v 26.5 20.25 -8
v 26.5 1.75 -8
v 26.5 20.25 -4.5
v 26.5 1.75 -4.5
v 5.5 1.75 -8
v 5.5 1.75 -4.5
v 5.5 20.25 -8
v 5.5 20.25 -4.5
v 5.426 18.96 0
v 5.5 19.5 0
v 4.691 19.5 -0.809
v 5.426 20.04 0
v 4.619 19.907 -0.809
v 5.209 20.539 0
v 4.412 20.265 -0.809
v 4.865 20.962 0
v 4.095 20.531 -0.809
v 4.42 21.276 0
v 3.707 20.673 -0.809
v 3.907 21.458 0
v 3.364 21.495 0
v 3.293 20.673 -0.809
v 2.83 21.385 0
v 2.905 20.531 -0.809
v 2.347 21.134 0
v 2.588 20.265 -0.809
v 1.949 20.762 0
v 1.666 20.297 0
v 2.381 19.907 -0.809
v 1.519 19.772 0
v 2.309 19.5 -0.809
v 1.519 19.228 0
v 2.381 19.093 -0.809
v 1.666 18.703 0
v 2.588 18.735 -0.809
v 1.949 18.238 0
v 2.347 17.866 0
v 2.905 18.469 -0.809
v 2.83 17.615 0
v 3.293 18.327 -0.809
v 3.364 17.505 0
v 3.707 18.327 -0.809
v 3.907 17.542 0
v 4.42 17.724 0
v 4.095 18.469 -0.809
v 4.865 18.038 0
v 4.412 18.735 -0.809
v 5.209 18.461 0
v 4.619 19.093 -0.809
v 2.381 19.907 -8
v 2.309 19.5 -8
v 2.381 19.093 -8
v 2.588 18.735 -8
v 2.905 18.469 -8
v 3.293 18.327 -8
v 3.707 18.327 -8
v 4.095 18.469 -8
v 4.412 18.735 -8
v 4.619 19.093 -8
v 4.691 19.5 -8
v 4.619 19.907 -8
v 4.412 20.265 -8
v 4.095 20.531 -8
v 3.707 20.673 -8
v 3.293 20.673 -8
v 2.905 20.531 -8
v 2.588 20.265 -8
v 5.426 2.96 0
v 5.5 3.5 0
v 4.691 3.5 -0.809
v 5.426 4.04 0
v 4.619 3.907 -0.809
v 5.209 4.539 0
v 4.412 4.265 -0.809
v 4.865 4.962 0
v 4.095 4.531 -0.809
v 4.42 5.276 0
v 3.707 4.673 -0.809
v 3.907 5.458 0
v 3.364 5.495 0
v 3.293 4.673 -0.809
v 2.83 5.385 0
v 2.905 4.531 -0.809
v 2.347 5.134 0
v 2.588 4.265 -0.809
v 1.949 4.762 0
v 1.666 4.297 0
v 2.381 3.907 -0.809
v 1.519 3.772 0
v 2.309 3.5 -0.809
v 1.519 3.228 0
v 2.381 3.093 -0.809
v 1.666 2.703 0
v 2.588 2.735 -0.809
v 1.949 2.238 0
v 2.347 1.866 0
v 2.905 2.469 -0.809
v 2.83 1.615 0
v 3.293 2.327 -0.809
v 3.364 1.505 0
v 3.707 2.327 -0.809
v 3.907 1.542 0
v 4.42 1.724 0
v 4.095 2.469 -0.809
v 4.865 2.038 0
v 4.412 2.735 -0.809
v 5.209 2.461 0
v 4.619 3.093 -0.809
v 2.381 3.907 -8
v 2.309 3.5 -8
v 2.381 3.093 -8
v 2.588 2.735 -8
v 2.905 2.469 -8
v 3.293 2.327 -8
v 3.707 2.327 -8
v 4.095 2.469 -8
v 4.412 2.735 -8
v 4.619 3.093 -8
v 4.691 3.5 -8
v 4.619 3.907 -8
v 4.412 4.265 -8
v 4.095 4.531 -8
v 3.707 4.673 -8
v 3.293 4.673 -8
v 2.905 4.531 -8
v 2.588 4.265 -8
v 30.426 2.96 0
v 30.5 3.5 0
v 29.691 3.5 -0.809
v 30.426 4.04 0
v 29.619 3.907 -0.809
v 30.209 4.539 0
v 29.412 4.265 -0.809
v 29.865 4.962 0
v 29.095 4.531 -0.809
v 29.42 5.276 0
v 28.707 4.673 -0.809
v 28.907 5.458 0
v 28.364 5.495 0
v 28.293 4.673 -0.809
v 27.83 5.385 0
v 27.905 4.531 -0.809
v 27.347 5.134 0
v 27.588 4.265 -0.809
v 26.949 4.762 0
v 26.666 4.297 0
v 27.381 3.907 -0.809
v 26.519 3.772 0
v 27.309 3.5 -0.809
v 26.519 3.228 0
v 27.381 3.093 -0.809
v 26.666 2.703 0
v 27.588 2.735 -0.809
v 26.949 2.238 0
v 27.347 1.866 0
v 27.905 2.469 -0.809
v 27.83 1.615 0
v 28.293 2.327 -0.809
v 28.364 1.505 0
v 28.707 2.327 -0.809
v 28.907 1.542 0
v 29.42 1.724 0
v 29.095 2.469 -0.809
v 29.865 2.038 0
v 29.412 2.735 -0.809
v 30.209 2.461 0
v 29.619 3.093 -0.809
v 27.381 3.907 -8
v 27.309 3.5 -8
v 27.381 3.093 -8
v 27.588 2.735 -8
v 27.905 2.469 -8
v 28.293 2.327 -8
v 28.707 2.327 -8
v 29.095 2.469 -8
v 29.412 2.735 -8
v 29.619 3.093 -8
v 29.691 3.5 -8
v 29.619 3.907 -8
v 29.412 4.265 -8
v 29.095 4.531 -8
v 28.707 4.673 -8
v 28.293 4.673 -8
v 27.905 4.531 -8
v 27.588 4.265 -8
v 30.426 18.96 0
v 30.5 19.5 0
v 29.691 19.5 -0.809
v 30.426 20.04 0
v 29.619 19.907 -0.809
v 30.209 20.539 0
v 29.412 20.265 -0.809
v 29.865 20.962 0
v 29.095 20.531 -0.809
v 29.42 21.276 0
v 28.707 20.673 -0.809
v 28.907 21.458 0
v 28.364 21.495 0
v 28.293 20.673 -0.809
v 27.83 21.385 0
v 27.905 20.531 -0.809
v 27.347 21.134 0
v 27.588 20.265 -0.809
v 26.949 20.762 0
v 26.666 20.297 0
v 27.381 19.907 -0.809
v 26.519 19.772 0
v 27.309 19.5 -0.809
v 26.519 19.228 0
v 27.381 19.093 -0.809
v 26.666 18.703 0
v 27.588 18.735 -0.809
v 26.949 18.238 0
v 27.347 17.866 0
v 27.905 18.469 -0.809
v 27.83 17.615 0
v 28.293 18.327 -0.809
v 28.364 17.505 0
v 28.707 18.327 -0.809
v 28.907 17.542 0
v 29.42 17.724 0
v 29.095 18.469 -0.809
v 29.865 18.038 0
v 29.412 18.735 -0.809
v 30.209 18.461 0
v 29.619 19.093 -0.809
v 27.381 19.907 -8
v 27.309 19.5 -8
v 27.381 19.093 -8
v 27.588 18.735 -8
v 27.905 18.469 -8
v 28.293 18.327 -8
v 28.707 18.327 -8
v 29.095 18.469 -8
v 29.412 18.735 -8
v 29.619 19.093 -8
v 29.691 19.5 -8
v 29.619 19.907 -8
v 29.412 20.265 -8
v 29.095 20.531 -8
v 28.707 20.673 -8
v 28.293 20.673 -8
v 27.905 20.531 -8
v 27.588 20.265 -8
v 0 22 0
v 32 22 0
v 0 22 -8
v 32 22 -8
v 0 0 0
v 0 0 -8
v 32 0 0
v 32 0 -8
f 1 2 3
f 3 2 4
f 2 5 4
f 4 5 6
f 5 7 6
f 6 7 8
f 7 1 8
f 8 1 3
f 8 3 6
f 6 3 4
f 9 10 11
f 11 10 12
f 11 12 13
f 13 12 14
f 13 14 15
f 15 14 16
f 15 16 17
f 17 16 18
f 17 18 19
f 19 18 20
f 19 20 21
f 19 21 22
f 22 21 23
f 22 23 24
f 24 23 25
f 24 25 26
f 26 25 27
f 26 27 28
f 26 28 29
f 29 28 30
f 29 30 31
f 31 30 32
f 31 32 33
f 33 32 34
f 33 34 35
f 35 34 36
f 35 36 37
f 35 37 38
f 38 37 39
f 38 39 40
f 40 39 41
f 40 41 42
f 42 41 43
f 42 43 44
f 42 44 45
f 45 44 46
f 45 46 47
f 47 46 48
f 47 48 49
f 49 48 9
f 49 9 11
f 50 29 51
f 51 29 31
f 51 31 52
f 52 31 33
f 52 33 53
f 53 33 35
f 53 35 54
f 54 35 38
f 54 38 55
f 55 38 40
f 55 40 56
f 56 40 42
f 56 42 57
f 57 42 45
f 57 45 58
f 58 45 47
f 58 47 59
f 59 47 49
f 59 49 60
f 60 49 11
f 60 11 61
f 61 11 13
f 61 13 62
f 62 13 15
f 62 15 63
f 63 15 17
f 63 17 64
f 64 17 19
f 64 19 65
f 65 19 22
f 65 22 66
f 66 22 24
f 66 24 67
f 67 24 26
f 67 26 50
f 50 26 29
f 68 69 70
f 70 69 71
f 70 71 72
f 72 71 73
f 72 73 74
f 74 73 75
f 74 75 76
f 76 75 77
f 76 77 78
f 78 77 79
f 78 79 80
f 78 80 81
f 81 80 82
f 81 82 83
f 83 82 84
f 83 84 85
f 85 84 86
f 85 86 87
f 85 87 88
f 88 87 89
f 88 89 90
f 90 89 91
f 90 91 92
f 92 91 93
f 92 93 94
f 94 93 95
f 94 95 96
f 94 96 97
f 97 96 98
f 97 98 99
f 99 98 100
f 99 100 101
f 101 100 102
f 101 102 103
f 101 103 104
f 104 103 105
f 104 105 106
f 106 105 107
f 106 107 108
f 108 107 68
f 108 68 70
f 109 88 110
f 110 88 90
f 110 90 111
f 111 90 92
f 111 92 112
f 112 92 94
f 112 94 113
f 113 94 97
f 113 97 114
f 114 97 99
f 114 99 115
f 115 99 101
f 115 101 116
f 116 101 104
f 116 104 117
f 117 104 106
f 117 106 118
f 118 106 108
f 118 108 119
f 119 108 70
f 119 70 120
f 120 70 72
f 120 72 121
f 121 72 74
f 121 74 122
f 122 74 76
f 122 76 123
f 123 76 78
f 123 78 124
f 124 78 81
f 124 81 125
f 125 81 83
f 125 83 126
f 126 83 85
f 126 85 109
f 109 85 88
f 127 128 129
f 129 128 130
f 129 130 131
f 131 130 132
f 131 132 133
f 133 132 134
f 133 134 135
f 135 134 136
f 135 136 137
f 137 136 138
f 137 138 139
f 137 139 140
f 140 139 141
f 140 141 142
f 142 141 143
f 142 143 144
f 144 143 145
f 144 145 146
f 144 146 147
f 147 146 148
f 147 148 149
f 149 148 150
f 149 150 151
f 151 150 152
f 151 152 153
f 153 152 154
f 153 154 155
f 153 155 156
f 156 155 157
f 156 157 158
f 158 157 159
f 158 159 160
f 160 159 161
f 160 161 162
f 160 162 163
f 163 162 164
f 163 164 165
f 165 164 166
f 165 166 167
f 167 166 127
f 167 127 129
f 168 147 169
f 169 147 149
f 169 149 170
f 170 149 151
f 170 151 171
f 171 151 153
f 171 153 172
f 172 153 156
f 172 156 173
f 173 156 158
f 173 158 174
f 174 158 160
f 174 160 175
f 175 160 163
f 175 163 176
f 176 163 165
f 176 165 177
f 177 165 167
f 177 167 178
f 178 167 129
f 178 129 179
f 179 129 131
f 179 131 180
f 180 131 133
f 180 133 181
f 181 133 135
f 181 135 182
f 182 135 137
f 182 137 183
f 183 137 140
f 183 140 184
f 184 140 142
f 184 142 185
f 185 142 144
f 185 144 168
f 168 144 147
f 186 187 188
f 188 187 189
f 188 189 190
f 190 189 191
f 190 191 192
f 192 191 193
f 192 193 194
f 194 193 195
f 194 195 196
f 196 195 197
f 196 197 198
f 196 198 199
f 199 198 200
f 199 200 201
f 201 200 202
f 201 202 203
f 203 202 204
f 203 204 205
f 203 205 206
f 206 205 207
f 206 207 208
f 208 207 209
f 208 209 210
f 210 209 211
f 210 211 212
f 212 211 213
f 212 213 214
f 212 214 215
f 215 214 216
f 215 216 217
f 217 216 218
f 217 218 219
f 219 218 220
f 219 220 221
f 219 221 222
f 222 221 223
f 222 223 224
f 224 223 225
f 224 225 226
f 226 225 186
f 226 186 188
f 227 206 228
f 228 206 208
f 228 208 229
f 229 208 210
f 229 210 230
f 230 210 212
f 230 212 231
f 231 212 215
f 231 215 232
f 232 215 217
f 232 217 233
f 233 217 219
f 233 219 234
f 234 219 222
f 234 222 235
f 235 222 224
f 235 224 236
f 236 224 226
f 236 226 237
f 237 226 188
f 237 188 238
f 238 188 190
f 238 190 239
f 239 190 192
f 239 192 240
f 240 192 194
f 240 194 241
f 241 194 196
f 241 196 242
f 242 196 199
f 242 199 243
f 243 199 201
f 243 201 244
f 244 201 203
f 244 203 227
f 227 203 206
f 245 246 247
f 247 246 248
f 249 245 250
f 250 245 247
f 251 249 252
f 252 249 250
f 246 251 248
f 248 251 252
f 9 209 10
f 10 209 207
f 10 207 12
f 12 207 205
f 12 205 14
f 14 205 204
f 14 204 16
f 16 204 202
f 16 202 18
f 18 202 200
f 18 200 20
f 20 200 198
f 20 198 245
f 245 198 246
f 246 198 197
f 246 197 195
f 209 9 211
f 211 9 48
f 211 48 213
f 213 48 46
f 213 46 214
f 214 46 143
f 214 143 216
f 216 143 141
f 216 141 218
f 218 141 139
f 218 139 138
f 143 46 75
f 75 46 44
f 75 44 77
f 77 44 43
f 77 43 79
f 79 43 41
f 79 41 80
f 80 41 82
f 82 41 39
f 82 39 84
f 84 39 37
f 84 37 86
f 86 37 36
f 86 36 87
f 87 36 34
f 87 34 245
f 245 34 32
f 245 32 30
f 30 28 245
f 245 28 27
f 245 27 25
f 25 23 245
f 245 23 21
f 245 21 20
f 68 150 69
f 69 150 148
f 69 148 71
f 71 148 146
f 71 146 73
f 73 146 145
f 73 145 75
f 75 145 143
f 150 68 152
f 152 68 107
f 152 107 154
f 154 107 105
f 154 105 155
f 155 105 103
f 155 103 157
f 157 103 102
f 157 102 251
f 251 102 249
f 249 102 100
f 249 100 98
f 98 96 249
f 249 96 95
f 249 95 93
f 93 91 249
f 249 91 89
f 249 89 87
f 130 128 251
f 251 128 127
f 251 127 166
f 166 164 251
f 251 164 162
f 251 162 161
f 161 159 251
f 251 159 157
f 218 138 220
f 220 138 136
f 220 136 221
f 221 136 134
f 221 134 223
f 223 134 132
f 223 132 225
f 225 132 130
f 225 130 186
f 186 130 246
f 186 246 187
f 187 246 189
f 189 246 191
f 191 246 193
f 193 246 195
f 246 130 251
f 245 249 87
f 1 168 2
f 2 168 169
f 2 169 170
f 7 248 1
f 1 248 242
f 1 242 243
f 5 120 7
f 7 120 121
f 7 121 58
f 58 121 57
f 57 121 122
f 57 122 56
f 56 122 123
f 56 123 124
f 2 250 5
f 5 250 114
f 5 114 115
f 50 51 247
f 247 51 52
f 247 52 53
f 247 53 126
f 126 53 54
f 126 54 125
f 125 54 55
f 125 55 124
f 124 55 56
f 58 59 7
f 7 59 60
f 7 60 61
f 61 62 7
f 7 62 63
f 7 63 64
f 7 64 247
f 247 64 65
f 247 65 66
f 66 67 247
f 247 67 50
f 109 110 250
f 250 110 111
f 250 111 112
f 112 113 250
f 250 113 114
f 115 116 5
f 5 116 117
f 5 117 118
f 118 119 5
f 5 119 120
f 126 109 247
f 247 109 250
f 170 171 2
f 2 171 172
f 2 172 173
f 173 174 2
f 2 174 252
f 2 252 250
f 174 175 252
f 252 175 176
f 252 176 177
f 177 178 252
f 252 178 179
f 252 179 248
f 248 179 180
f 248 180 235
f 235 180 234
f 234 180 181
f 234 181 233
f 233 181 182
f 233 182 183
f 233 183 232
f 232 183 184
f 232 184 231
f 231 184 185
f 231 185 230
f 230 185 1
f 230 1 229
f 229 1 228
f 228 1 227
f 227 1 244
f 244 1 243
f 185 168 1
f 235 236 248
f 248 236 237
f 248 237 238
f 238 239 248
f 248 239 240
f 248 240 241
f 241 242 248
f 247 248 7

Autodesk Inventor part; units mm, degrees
ref_plane "YZ Plane" through (0, 0, 0) normal (1, 0, 0) x (0, 1, 0)
ref_plane "XZ Plane" through (0, 0, 0) normal (0, 1, 0) x (-1, 0, 0)
ref_plane "XY Plane" through (0, 0, 0) normal (0, 0, 1) x (1, 0, 0)
sketch "Sketch1" plane through (0, 0, 0) normal (0, 0, 1) x (1, 0, 0)
  line L0 (0, 0) -> (0, 22)
  line L1 (0, 22) -> (32, 22)
  line L2 (32, 22) -> (32, 0)
  line L3 (32, 0) -> (0, 0)
  line L4 (16, 22) -> (16, 0) construction
  line L5 (32, 11) -> (0, 11) construction
  point P0 (3.5, 3.5)
  point P1 (28.5, 3.5)
  point P2 (3.5, 19.5)
  point P3 (28.5, 19.5)
  dimension "d0" = 32
  dimension "d1" = 22
  dimension "d2" = 3.5
  dimension "d3" = 3.5
  dimension "d4" = 2.5
extrude "Extrusion1" add sketch "Sketch1" against normal blind 8
hole "Hole1" at (3.5, 3.5, 0) at (28.5, 3.5, 0) at (3.5, 19.5, 0) at (28.5, 19.5, 0) direction (0, 0, -1) diameter 2.3813 depth 10 tip angle 118 countersink diameter 4 countersink angle 90
sketch "Sketch2" plane through (0, 0, -8) normal (0, 0, -1) x (-1, 0, 0)
  line L0 (-5.5, 1.75) -> (-26.5, 1.75)
  line L1 (-26.5, 1.75) -> (-26.5, 20.25)
  line L2 (-26.5, 20.25) -> (-5.5, 20.25)
  line L3 (-5.5, 20.25) -> (-5.5, 1.75)
  line L4 (-5.5, 1.75) -> (-26.5, 20.25) construction
  line L5 (-26.5, 1.75) -> (-5.5, 20.25) construction
  line L6 (-32, 22) -> (0, 22) projected
  line L7 (-16, 22) -> (-16, 0) construction
  line L8 (0, 0) -> (-32, 0) projected
  line L9 (-32, 0) -> (-32, 22) projected
  line L10 (-32, 11) -> (0, 11) construction
  line L11 (0, 22) -> (0, 0) projected
  point P0 (-16, 11)
  dimension "d14" = 21
  dimension "d15" = 18.5
extrude "Extrusion2" cut sketch "Sketch2" against normal blind 3.5 contours L0 L1 L2 L3
sketch "Sketch3" plane through (0, 0, -8) normal (0, 0, -1) x (-1, 0, 0)
  point P0 (0, 0)
properties part number "sensor_Mount"
